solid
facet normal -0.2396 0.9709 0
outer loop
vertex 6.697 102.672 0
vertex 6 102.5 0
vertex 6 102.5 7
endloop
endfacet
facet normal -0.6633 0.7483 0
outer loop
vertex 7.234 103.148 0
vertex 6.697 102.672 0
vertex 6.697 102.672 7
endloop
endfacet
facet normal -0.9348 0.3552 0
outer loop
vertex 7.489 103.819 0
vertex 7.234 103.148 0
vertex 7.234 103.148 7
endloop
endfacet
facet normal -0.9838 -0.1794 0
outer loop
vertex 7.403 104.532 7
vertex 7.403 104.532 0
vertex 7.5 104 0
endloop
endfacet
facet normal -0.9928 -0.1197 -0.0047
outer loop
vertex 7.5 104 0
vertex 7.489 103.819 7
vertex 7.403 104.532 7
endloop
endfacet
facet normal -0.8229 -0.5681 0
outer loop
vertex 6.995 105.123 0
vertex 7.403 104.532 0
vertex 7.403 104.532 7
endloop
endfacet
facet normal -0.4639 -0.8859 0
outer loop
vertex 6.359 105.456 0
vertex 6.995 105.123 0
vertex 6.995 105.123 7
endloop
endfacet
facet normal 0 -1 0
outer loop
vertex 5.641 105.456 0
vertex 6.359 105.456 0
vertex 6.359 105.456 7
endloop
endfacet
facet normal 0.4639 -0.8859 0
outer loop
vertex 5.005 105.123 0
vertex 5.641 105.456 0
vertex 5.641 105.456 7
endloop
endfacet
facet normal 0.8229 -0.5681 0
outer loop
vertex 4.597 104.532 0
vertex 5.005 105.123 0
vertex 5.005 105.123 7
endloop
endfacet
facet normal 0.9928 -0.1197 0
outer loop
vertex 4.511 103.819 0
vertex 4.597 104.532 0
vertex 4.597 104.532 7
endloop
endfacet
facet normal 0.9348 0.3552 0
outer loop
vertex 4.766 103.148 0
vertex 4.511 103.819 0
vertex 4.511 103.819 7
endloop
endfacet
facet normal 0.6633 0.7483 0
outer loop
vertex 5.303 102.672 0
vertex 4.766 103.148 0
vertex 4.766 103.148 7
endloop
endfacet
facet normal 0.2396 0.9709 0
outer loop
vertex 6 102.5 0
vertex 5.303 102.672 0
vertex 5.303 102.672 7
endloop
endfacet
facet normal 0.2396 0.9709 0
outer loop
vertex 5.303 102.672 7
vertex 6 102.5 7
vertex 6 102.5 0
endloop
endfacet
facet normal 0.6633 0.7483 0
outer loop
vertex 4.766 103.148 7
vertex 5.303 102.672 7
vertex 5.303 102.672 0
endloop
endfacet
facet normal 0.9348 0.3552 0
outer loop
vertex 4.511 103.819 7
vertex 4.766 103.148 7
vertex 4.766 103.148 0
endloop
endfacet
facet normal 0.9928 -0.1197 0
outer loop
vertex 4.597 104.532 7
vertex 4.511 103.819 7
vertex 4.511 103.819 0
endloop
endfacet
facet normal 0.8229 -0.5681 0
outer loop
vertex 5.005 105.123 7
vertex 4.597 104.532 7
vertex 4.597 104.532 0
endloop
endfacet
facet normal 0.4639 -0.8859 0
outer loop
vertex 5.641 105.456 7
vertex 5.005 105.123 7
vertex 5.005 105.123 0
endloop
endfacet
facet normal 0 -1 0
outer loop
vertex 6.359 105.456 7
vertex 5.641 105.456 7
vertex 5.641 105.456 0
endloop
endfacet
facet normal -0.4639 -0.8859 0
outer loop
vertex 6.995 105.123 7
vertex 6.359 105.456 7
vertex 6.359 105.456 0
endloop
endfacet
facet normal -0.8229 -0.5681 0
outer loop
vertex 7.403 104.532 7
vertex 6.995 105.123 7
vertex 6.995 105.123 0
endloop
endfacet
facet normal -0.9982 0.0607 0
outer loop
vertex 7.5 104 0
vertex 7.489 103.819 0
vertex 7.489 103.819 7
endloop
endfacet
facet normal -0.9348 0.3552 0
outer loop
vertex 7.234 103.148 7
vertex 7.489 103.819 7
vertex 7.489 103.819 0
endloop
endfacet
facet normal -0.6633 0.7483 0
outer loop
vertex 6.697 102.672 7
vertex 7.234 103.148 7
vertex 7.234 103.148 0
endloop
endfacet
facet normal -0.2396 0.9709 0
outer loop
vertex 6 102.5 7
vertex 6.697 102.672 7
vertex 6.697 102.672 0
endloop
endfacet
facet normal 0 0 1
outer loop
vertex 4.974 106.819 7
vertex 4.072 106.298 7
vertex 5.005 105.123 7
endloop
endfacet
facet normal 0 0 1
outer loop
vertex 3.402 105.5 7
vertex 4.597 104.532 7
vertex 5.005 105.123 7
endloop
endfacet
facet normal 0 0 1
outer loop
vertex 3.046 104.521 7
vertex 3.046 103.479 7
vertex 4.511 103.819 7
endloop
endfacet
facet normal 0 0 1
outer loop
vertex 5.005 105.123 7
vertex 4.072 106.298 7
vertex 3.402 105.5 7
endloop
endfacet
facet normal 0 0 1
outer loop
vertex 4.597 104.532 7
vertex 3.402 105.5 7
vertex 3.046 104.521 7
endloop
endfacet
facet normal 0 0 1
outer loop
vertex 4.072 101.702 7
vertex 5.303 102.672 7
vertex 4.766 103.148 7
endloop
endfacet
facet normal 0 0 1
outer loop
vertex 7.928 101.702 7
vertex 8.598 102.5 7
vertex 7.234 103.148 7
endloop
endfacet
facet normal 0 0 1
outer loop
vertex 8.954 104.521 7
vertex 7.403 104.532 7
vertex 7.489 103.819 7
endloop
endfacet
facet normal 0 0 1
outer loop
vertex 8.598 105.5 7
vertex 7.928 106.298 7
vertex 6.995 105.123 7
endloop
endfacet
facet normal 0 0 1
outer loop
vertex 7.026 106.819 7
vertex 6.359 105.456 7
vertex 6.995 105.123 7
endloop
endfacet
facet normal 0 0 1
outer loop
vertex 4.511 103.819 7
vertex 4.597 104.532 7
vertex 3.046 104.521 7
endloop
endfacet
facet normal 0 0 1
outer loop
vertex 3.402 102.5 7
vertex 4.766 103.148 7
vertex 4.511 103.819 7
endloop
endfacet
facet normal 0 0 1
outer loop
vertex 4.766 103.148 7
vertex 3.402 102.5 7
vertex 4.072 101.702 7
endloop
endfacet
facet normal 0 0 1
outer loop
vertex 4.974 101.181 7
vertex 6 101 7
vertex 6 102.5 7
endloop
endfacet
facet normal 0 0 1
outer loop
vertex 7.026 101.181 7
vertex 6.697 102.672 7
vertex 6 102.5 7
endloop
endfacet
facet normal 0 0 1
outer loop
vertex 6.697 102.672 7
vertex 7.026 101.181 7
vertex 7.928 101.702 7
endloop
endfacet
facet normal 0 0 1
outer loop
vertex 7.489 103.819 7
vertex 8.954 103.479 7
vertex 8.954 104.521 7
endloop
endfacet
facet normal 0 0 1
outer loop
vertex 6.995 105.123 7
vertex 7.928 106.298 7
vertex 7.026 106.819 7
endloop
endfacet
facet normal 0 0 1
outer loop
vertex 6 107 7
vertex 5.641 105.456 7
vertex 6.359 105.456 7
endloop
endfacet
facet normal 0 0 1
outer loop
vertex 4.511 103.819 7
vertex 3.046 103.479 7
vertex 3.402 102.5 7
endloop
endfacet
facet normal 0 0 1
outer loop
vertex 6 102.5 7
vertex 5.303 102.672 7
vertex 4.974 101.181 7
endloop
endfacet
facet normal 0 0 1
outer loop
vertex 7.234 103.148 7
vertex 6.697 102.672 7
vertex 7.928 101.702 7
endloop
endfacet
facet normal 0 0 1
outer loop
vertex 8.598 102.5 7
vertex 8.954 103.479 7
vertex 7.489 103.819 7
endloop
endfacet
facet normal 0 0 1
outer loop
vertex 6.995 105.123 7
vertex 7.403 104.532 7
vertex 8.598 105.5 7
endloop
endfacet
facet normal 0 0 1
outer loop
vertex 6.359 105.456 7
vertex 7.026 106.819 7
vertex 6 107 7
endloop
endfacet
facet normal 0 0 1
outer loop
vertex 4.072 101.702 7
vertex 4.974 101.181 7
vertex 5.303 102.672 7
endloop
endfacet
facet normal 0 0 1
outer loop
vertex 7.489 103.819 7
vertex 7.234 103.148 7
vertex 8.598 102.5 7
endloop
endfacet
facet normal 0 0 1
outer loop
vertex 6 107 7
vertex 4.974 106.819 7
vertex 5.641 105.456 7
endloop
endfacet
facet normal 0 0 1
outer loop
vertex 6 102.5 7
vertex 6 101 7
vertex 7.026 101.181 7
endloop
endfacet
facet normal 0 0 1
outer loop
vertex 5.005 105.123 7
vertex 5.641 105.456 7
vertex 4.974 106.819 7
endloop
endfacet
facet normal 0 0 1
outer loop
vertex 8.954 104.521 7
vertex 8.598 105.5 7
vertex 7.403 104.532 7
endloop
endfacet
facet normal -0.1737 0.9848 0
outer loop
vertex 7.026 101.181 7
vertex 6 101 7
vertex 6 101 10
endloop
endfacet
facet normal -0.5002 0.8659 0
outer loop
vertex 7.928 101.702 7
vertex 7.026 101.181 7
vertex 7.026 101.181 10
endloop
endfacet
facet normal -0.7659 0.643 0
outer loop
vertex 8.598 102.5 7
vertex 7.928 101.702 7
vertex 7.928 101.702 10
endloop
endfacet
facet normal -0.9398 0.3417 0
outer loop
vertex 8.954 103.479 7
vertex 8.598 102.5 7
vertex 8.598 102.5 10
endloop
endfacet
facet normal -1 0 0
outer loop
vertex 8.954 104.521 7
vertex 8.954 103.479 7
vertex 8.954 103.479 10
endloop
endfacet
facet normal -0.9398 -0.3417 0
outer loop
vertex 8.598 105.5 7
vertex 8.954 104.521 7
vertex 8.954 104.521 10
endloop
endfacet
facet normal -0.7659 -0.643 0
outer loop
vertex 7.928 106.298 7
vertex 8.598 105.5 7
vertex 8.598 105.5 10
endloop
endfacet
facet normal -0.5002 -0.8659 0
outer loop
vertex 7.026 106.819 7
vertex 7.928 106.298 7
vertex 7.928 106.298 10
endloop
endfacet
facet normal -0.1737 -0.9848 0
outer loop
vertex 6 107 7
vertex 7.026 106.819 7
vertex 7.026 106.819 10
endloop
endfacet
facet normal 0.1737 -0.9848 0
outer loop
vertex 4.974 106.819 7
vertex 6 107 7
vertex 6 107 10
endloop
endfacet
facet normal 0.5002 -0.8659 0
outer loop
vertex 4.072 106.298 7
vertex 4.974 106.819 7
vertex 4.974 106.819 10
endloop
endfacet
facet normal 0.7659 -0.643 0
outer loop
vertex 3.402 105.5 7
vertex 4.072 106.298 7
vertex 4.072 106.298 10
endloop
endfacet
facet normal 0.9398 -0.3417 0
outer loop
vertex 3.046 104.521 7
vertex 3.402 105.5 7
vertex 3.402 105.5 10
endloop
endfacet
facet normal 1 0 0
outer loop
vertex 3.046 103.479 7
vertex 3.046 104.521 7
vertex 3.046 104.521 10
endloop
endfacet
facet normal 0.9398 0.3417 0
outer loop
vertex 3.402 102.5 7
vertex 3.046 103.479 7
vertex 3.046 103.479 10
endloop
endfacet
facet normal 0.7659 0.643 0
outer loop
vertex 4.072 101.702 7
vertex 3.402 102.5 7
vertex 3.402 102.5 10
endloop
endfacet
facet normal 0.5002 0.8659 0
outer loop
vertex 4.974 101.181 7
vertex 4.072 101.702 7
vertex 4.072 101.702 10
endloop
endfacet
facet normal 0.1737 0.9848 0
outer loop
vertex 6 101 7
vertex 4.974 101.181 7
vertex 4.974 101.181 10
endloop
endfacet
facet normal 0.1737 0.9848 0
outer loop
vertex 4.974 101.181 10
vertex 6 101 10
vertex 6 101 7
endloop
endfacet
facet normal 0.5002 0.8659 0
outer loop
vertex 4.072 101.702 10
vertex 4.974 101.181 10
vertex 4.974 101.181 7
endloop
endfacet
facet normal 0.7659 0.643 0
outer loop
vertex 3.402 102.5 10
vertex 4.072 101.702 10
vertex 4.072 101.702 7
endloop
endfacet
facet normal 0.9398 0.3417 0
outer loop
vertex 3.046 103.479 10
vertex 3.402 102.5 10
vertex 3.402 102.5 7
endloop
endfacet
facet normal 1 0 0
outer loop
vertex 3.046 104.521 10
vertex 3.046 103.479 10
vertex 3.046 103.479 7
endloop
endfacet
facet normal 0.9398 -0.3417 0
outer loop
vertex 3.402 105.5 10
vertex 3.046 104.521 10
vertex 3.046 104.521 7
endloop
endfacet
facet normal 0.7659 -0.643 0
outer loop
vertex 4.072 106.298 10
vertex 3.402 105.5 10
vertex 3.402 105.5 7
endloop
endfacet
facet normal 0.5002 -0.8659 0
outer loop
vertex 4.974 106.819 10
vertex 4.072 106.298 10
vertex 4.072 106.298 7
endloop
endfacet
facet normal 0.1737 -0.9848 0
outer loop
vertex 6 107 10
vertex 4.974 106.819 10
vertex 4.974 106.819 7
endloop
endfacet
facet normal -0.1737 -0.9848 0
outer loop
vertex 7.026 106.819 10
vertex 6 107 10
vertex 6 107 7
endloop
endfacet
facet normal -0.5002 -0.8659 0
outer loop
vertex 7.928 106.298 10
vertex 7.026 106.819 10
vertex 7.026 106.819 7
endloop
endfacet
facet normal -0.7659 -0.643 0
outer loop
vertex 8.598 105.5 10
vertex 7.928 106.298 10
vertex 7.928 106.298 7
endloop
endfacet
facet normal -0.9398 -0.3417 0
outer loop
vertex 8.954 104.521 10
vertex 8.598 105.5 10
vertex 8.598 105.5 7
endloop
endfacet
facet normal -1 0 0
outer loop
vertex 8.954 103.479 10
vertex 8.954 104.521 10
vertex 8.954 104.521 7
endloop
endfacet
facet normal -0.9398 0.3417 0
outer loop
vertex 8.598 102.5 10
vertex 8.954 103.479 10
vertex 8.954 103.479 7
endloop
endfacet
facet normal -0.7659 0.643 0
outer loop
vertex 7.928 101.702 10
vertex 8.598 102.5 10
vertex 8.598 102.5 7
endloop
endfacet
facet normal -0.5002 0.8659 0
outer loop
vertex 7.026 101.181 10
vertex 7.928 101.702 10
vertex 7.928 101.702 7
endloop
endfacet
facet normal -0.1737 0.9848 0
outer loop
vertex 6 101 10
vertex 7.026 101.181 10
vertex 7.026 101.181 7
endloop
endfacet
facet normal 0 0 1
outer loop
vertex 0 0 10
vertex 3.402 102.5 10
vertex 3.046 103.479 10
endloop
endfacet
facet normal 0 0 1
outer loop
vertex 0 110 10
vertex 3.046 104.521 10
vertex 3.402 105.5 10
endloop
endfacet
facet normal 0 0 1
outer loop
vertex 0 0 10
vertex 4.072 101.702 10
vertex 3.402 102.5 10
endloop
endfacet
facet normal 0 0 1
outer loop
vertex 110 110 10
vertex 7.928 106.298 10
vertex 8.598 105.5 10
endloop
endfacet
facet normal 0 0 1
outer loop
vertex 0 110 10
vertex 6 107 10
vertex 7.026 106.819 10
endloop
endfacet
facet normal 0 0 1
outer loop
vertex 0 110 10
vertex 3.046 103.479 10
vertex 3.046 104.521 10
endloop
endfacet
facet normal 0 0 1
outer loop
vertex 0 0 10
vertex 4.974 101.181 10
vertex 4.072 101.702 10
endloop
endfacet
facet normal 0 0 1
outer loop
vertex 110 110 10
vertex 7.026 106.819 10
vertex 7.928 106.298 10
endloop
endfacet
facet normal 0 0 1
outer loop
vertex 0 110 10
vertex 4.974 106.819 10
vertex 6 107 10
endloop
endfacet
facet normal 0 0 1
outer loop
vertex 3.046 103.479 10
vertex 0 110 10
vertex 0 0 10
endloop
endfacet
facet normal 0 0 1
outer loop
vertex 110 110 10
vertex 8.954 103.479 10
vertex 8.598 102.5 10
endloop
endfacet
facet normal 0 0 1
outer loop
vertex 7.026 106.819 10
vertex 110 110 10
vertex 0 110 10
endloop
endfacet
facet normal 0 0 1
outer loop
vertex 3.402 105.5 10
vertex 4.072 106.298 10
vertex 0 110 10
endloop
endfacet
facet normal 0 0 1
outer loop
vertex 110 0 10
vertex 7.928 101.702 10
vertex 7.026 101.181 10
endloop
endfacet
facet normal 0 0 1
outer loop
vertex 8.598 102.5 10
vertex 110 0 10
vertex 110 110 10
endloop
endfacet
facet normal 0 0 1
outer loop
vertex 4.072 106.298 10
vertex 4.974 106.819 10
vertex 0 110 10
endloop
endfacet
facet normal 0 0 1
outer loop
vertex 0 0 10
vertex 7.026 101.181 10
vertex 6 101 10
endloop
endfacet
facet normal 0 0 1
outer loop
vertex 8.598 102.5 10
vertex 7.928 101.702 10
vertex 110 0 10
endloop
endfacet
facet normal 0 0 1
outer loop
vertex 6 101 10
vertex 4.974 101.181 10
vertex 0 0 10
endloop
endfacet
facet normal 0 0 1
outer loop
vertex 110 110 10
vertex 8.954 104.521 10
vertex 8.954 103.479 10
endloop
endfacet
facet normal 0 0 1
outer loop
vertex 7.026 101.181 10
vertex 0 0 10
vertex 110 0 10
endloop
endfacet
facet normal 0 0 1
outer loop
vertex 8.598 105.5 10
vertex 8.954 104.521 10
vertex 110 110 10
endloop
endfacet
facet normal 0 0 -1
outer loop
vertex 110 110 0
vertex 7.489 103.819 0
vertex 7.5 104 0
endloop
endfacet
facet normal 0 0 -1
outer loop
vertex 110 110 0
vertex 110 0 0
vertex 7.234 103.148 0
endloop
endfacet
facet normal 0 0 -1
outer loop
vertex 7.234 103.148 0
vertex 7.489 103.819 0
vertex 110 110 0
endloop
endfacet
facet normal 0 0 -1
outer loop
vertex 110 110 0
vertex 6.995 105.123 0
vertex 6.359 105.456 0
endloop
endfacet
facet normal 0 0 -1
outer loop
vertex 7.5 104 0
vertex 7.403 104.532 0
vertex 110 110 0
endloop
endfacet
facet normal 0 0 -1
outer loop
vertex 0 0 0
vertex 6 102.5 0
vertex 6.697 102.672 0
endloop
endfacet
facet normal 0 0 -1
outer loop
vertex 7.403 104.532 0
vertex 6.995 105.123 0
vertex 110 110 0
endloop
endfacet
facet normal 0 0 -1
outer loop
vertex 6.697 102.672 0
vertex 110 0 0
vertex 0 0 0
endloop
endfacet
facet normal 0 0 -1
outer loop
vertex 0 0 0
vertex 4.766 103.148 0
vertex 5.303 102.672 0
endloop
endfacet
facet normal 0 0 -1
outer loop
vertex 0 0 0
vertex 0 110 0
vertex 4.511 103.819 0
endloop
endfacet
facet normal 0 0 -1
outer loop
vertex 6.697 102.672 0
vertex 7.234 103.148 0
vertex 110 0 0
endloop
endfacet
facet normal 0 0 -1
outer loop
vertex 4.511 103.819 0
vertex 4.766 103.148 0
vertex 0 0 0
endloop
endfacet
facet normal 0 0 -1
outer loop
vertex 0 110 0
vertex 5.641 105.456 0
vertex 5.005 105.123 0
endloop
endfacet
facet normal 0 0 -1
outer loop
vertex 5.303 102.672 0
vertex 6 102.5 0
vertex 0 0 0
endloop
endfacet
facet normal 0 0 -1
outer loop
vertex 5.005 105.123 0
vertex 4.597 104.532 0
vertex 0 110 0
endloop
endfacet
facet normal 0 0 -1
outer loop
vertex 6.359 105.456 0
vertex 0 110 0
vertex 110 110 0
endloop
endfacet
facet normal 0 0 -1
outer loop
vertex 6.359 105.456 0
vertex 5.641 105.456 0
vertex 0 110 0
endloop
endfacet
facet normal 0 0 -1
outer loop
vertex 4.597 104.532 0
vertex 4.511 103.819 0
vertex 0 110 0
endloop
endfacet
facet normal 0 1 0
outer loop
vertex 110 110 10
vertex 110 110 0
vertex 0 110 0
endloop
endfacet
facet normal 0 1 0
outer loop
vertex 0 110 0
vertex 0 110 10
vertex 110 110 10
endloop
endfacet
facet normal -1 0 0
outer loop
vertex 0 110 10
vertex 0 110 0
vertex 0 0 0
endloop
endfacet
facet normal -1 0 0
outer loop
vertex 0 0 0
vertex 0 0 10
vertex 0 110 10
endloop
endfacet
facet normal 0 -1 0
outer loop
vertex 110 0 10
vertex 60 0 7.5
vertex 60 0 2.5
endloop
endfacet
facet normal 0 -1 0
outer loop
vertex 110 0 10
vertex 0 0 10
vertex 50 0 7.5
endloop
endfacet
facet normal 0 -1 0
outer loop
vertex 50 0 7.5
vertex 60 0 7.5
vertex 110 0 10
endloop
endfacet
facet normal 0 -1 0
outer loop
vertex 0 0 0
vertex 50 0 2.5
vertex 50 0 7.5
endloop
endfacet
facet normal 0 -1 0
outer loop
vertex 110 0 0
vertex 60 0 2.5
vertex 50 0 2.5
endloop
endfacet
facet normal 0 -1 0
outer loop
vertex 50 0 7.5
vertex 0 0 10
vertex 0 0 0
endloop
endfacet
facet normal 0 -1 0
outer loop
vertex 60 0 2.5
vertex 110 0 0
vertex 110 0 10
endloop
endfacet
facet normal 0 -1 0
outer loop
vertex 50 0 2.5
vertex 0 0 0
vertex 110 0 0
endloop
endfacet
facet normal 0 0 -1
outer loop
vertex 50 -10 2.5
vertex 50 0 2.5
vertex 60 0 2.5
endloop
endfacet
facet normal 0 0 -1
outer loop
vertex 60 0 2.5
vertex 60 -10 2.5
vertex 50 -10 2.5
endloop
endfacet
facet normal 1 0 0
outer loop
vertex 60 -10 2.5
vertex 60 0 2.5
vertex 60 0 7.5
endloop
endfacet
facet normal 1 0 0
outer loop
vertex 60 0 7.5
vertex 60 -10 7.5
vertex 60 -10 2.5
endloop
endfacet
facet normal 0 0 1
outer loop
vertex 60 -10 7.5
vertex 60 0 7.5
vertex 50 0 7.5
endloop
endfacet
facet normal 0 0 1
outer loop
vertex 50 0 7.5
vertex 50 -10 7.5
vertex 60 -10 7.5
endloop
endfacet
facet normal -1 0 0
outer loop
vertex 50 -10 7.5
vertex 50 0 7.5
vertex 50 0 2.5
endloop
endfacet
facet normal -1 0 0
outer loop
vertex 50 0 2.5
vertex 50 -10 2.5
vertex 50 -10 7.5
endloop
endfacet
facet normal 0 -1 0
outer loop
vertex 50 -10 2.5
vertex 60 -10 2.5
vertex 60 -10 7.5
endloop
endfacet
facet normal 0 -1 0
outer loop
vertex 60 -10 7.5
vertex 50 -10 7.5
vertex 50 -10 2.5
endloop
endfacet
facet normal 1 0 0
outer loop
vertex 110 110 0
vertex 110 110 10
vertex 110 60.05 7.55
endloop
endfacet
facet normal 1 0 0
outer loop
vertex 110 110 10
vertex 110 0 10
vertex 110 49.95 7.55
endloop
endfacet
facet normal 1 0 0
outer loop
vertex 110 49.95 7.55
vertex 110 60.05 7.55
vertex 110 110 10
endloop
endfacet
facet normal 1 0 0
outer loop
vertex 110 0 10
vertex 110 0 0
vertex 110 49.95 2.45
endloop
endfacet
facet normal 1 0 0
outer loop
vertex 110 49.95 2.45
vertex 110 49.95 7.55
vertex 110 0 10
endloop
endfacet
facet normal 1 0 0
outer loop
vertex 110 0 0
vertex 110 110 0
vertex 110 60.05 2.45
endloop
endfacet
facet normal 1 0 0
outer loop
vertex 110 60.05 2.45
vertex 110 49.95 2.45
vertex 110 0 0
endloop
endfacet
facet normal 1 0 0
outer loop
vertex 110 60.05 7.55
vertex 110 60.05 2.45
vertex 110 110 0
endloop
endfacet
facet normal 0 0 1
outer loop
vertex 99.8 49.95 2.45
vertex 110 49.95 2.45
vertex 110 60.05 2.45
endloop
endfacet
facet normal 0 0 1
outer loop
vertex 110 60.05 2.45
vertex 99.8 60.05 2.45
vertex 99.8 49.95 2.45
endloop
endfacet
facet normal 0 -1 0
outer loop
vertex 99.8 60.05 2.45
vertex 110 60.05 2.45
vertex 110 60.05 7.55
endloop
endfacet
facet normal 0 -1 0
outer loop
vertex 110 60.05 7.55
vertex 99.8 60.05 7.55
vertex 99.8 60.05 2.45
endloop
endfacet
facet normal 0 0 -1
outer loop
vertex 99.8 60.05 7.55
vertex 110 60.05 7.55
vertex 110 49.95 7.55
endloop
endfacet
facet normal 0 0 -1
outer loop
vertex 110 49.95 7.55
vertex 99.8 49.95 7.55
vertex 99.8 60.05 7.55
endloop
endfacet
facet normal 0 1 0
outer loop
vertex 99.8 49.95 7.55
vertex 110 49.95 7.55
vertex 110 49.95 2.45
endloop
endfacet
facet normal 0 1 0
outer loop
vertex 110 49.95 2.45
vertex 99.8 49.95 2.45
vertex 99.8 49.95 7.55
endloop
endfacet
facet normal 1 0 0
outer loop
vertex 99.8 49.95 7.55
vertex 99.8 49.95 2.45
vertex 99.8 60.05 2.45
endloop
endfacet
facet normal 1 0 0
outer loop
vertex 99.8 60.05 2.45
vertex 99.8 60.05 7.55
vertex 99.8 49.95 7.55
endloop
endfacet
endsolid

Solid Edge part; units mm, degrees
sketch "Sketch1" plane through (0, 0, 0) normal (0, 0, 1) x (1, 0, 0)
  line L0 (110, 0) -> (110, 110)
  line L1 (110, 110) -> (0, 110)
  line L2 (0, 110) -> (0, 0)
  line L3 (0, 0) -> (110, 0)
extrude "Protrusion1" add sketch "Sketch1" along normal blind 10
hole "Agujero_1" at (6, 104, 10) direction (0, 0, -1) diameter 3 end through all counterbore diameter 6 counterbore depth 3
sketch "Sketch2" plane through (55, 0, 5) normal (0, -1, 0) x (1, 0, 0)
  line L0 (5, -2.5) -> (5, 2.5)
  line L1 (5, 2.5) -> (-5, 2.5)
  line L2 (-5, 2.5) -> (-5, -2.5)
  line L3 (-5, -2.5) -> (5, -2.5)
extrude "ProtrusiónExtruida_2" add sketch "Sketch2" along normal blind 10
sketch "Sketch3" plane through (110, 55, 5) normal (1, 0, 0) x (0, 1, 0)
  line L0 (5.05, -2.55) -> (5.05, 2.55)
  line L1 (5.05, 2.55) -> (-5.05, 2.55)
  line L2 (-5.05, 2.55) -> (-5.05, -2.55)
  line L3 (-5.05, -2.55) -> (5.05, -2.55)
extrude "VaciadoExtruido_1" cut sketch "Sketch3" against normal blind 10.2
